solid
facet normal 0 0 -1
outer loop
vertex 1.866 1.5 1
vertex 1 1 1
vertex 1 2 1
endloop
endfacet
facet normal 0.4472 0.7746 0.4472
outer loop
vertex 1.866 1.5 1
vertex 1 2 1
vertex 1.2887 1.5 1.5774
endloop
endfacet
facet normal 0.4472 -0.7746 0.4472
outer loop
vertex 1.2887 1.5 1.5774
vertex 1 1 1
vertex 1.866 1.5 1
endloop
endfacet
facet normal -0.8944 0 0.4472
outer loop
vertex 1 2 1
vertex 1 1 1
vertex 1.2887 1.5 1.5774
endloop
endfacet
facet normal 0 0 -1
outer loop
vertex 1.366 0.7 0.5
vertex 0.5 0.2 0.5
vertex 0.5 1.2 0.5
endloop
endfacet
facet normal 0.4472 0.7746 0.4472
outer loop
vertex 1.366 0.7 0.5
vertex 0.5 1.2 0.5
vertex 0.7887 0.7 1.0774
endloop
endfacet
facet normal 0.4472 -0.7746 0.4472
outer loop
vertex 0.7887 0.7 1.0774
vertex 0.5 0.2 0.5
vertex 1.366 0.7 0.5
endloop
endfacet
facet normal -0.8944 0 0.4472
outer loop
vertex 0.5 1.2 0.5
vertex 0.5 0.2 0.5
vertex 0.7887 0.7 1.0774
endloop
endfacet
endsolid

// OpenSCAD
// file: tetrahedron.scad
/* A simple tetrahedron

One face on the xy plane.
One edge of that face parallel to the y axis, crossing the negitive x axis
final vertex on the positive z axis

To move to non-negative quadrant, use:
translate ([ pow(3*t*t/4, 0.5) - t * tan(30), t/2, 0 ])
where t is the length of an edge
translate ([ t*0.5, pow(3*t*t/4, 0.5), 0 ])
where t is either the height or the radius

sin(þ) = opp / hyp
cos(þ) = adj / hyp
tan(þ) = opp / adj

hyp = adj / cos(þ)
radius = ( edgeLengh / 2 ) / cos(30)
*/

module tetrahedronByRadius ( radius, center = false ) {
  linear_extrude ( height = radius, center = center, scale = 0 )
   circle ( r = radius, $fn = 3 );
}

module tetrahedron ( height = 1, radius = 0, length = 0, center = false ) {
  if ( radius > 0 ) {
    tetrahedronByRadius ( radius, center = center );
    echo ( "tetrahedron from radius" );
  } else if ( length > 0 ) {
    tetrahedronByRadius ( length * tan(30), center = center ); // .57735
    echo ( "tetrahedron from edge length" );
  } else {
    tetrahedronByRadius ( height, center = center );
    echo ( "tetrahedron from height" );
  }
}
// main file
use <tetrahedron.scad>

// move to origin, edge on y axis
// r0 = 1;
// translate ([ r0*0.5, pow(3*r0*r0/4, 0.5), 0 ])
//   tetrahedron( radius = r0 );

// move to origin, edge on y axis
// t = 1;
// translate ([ pow(3*t*t/4, 0.5) - t * tan(30), t/2, 0 ])
//   tetrahedron( length = t );

t = 1;
translate ([ 1 + pow(3*t*t/4, 0.5) - t * tan(30), 1 + t/2, t ])
  tetrahedron( length = t );
translate ([ 0.5 + pow(3*t*t/4, 0.5) - t * tan(30), 0.2 + t/2, t / 2 ])
  tetrahedron( length = t );
